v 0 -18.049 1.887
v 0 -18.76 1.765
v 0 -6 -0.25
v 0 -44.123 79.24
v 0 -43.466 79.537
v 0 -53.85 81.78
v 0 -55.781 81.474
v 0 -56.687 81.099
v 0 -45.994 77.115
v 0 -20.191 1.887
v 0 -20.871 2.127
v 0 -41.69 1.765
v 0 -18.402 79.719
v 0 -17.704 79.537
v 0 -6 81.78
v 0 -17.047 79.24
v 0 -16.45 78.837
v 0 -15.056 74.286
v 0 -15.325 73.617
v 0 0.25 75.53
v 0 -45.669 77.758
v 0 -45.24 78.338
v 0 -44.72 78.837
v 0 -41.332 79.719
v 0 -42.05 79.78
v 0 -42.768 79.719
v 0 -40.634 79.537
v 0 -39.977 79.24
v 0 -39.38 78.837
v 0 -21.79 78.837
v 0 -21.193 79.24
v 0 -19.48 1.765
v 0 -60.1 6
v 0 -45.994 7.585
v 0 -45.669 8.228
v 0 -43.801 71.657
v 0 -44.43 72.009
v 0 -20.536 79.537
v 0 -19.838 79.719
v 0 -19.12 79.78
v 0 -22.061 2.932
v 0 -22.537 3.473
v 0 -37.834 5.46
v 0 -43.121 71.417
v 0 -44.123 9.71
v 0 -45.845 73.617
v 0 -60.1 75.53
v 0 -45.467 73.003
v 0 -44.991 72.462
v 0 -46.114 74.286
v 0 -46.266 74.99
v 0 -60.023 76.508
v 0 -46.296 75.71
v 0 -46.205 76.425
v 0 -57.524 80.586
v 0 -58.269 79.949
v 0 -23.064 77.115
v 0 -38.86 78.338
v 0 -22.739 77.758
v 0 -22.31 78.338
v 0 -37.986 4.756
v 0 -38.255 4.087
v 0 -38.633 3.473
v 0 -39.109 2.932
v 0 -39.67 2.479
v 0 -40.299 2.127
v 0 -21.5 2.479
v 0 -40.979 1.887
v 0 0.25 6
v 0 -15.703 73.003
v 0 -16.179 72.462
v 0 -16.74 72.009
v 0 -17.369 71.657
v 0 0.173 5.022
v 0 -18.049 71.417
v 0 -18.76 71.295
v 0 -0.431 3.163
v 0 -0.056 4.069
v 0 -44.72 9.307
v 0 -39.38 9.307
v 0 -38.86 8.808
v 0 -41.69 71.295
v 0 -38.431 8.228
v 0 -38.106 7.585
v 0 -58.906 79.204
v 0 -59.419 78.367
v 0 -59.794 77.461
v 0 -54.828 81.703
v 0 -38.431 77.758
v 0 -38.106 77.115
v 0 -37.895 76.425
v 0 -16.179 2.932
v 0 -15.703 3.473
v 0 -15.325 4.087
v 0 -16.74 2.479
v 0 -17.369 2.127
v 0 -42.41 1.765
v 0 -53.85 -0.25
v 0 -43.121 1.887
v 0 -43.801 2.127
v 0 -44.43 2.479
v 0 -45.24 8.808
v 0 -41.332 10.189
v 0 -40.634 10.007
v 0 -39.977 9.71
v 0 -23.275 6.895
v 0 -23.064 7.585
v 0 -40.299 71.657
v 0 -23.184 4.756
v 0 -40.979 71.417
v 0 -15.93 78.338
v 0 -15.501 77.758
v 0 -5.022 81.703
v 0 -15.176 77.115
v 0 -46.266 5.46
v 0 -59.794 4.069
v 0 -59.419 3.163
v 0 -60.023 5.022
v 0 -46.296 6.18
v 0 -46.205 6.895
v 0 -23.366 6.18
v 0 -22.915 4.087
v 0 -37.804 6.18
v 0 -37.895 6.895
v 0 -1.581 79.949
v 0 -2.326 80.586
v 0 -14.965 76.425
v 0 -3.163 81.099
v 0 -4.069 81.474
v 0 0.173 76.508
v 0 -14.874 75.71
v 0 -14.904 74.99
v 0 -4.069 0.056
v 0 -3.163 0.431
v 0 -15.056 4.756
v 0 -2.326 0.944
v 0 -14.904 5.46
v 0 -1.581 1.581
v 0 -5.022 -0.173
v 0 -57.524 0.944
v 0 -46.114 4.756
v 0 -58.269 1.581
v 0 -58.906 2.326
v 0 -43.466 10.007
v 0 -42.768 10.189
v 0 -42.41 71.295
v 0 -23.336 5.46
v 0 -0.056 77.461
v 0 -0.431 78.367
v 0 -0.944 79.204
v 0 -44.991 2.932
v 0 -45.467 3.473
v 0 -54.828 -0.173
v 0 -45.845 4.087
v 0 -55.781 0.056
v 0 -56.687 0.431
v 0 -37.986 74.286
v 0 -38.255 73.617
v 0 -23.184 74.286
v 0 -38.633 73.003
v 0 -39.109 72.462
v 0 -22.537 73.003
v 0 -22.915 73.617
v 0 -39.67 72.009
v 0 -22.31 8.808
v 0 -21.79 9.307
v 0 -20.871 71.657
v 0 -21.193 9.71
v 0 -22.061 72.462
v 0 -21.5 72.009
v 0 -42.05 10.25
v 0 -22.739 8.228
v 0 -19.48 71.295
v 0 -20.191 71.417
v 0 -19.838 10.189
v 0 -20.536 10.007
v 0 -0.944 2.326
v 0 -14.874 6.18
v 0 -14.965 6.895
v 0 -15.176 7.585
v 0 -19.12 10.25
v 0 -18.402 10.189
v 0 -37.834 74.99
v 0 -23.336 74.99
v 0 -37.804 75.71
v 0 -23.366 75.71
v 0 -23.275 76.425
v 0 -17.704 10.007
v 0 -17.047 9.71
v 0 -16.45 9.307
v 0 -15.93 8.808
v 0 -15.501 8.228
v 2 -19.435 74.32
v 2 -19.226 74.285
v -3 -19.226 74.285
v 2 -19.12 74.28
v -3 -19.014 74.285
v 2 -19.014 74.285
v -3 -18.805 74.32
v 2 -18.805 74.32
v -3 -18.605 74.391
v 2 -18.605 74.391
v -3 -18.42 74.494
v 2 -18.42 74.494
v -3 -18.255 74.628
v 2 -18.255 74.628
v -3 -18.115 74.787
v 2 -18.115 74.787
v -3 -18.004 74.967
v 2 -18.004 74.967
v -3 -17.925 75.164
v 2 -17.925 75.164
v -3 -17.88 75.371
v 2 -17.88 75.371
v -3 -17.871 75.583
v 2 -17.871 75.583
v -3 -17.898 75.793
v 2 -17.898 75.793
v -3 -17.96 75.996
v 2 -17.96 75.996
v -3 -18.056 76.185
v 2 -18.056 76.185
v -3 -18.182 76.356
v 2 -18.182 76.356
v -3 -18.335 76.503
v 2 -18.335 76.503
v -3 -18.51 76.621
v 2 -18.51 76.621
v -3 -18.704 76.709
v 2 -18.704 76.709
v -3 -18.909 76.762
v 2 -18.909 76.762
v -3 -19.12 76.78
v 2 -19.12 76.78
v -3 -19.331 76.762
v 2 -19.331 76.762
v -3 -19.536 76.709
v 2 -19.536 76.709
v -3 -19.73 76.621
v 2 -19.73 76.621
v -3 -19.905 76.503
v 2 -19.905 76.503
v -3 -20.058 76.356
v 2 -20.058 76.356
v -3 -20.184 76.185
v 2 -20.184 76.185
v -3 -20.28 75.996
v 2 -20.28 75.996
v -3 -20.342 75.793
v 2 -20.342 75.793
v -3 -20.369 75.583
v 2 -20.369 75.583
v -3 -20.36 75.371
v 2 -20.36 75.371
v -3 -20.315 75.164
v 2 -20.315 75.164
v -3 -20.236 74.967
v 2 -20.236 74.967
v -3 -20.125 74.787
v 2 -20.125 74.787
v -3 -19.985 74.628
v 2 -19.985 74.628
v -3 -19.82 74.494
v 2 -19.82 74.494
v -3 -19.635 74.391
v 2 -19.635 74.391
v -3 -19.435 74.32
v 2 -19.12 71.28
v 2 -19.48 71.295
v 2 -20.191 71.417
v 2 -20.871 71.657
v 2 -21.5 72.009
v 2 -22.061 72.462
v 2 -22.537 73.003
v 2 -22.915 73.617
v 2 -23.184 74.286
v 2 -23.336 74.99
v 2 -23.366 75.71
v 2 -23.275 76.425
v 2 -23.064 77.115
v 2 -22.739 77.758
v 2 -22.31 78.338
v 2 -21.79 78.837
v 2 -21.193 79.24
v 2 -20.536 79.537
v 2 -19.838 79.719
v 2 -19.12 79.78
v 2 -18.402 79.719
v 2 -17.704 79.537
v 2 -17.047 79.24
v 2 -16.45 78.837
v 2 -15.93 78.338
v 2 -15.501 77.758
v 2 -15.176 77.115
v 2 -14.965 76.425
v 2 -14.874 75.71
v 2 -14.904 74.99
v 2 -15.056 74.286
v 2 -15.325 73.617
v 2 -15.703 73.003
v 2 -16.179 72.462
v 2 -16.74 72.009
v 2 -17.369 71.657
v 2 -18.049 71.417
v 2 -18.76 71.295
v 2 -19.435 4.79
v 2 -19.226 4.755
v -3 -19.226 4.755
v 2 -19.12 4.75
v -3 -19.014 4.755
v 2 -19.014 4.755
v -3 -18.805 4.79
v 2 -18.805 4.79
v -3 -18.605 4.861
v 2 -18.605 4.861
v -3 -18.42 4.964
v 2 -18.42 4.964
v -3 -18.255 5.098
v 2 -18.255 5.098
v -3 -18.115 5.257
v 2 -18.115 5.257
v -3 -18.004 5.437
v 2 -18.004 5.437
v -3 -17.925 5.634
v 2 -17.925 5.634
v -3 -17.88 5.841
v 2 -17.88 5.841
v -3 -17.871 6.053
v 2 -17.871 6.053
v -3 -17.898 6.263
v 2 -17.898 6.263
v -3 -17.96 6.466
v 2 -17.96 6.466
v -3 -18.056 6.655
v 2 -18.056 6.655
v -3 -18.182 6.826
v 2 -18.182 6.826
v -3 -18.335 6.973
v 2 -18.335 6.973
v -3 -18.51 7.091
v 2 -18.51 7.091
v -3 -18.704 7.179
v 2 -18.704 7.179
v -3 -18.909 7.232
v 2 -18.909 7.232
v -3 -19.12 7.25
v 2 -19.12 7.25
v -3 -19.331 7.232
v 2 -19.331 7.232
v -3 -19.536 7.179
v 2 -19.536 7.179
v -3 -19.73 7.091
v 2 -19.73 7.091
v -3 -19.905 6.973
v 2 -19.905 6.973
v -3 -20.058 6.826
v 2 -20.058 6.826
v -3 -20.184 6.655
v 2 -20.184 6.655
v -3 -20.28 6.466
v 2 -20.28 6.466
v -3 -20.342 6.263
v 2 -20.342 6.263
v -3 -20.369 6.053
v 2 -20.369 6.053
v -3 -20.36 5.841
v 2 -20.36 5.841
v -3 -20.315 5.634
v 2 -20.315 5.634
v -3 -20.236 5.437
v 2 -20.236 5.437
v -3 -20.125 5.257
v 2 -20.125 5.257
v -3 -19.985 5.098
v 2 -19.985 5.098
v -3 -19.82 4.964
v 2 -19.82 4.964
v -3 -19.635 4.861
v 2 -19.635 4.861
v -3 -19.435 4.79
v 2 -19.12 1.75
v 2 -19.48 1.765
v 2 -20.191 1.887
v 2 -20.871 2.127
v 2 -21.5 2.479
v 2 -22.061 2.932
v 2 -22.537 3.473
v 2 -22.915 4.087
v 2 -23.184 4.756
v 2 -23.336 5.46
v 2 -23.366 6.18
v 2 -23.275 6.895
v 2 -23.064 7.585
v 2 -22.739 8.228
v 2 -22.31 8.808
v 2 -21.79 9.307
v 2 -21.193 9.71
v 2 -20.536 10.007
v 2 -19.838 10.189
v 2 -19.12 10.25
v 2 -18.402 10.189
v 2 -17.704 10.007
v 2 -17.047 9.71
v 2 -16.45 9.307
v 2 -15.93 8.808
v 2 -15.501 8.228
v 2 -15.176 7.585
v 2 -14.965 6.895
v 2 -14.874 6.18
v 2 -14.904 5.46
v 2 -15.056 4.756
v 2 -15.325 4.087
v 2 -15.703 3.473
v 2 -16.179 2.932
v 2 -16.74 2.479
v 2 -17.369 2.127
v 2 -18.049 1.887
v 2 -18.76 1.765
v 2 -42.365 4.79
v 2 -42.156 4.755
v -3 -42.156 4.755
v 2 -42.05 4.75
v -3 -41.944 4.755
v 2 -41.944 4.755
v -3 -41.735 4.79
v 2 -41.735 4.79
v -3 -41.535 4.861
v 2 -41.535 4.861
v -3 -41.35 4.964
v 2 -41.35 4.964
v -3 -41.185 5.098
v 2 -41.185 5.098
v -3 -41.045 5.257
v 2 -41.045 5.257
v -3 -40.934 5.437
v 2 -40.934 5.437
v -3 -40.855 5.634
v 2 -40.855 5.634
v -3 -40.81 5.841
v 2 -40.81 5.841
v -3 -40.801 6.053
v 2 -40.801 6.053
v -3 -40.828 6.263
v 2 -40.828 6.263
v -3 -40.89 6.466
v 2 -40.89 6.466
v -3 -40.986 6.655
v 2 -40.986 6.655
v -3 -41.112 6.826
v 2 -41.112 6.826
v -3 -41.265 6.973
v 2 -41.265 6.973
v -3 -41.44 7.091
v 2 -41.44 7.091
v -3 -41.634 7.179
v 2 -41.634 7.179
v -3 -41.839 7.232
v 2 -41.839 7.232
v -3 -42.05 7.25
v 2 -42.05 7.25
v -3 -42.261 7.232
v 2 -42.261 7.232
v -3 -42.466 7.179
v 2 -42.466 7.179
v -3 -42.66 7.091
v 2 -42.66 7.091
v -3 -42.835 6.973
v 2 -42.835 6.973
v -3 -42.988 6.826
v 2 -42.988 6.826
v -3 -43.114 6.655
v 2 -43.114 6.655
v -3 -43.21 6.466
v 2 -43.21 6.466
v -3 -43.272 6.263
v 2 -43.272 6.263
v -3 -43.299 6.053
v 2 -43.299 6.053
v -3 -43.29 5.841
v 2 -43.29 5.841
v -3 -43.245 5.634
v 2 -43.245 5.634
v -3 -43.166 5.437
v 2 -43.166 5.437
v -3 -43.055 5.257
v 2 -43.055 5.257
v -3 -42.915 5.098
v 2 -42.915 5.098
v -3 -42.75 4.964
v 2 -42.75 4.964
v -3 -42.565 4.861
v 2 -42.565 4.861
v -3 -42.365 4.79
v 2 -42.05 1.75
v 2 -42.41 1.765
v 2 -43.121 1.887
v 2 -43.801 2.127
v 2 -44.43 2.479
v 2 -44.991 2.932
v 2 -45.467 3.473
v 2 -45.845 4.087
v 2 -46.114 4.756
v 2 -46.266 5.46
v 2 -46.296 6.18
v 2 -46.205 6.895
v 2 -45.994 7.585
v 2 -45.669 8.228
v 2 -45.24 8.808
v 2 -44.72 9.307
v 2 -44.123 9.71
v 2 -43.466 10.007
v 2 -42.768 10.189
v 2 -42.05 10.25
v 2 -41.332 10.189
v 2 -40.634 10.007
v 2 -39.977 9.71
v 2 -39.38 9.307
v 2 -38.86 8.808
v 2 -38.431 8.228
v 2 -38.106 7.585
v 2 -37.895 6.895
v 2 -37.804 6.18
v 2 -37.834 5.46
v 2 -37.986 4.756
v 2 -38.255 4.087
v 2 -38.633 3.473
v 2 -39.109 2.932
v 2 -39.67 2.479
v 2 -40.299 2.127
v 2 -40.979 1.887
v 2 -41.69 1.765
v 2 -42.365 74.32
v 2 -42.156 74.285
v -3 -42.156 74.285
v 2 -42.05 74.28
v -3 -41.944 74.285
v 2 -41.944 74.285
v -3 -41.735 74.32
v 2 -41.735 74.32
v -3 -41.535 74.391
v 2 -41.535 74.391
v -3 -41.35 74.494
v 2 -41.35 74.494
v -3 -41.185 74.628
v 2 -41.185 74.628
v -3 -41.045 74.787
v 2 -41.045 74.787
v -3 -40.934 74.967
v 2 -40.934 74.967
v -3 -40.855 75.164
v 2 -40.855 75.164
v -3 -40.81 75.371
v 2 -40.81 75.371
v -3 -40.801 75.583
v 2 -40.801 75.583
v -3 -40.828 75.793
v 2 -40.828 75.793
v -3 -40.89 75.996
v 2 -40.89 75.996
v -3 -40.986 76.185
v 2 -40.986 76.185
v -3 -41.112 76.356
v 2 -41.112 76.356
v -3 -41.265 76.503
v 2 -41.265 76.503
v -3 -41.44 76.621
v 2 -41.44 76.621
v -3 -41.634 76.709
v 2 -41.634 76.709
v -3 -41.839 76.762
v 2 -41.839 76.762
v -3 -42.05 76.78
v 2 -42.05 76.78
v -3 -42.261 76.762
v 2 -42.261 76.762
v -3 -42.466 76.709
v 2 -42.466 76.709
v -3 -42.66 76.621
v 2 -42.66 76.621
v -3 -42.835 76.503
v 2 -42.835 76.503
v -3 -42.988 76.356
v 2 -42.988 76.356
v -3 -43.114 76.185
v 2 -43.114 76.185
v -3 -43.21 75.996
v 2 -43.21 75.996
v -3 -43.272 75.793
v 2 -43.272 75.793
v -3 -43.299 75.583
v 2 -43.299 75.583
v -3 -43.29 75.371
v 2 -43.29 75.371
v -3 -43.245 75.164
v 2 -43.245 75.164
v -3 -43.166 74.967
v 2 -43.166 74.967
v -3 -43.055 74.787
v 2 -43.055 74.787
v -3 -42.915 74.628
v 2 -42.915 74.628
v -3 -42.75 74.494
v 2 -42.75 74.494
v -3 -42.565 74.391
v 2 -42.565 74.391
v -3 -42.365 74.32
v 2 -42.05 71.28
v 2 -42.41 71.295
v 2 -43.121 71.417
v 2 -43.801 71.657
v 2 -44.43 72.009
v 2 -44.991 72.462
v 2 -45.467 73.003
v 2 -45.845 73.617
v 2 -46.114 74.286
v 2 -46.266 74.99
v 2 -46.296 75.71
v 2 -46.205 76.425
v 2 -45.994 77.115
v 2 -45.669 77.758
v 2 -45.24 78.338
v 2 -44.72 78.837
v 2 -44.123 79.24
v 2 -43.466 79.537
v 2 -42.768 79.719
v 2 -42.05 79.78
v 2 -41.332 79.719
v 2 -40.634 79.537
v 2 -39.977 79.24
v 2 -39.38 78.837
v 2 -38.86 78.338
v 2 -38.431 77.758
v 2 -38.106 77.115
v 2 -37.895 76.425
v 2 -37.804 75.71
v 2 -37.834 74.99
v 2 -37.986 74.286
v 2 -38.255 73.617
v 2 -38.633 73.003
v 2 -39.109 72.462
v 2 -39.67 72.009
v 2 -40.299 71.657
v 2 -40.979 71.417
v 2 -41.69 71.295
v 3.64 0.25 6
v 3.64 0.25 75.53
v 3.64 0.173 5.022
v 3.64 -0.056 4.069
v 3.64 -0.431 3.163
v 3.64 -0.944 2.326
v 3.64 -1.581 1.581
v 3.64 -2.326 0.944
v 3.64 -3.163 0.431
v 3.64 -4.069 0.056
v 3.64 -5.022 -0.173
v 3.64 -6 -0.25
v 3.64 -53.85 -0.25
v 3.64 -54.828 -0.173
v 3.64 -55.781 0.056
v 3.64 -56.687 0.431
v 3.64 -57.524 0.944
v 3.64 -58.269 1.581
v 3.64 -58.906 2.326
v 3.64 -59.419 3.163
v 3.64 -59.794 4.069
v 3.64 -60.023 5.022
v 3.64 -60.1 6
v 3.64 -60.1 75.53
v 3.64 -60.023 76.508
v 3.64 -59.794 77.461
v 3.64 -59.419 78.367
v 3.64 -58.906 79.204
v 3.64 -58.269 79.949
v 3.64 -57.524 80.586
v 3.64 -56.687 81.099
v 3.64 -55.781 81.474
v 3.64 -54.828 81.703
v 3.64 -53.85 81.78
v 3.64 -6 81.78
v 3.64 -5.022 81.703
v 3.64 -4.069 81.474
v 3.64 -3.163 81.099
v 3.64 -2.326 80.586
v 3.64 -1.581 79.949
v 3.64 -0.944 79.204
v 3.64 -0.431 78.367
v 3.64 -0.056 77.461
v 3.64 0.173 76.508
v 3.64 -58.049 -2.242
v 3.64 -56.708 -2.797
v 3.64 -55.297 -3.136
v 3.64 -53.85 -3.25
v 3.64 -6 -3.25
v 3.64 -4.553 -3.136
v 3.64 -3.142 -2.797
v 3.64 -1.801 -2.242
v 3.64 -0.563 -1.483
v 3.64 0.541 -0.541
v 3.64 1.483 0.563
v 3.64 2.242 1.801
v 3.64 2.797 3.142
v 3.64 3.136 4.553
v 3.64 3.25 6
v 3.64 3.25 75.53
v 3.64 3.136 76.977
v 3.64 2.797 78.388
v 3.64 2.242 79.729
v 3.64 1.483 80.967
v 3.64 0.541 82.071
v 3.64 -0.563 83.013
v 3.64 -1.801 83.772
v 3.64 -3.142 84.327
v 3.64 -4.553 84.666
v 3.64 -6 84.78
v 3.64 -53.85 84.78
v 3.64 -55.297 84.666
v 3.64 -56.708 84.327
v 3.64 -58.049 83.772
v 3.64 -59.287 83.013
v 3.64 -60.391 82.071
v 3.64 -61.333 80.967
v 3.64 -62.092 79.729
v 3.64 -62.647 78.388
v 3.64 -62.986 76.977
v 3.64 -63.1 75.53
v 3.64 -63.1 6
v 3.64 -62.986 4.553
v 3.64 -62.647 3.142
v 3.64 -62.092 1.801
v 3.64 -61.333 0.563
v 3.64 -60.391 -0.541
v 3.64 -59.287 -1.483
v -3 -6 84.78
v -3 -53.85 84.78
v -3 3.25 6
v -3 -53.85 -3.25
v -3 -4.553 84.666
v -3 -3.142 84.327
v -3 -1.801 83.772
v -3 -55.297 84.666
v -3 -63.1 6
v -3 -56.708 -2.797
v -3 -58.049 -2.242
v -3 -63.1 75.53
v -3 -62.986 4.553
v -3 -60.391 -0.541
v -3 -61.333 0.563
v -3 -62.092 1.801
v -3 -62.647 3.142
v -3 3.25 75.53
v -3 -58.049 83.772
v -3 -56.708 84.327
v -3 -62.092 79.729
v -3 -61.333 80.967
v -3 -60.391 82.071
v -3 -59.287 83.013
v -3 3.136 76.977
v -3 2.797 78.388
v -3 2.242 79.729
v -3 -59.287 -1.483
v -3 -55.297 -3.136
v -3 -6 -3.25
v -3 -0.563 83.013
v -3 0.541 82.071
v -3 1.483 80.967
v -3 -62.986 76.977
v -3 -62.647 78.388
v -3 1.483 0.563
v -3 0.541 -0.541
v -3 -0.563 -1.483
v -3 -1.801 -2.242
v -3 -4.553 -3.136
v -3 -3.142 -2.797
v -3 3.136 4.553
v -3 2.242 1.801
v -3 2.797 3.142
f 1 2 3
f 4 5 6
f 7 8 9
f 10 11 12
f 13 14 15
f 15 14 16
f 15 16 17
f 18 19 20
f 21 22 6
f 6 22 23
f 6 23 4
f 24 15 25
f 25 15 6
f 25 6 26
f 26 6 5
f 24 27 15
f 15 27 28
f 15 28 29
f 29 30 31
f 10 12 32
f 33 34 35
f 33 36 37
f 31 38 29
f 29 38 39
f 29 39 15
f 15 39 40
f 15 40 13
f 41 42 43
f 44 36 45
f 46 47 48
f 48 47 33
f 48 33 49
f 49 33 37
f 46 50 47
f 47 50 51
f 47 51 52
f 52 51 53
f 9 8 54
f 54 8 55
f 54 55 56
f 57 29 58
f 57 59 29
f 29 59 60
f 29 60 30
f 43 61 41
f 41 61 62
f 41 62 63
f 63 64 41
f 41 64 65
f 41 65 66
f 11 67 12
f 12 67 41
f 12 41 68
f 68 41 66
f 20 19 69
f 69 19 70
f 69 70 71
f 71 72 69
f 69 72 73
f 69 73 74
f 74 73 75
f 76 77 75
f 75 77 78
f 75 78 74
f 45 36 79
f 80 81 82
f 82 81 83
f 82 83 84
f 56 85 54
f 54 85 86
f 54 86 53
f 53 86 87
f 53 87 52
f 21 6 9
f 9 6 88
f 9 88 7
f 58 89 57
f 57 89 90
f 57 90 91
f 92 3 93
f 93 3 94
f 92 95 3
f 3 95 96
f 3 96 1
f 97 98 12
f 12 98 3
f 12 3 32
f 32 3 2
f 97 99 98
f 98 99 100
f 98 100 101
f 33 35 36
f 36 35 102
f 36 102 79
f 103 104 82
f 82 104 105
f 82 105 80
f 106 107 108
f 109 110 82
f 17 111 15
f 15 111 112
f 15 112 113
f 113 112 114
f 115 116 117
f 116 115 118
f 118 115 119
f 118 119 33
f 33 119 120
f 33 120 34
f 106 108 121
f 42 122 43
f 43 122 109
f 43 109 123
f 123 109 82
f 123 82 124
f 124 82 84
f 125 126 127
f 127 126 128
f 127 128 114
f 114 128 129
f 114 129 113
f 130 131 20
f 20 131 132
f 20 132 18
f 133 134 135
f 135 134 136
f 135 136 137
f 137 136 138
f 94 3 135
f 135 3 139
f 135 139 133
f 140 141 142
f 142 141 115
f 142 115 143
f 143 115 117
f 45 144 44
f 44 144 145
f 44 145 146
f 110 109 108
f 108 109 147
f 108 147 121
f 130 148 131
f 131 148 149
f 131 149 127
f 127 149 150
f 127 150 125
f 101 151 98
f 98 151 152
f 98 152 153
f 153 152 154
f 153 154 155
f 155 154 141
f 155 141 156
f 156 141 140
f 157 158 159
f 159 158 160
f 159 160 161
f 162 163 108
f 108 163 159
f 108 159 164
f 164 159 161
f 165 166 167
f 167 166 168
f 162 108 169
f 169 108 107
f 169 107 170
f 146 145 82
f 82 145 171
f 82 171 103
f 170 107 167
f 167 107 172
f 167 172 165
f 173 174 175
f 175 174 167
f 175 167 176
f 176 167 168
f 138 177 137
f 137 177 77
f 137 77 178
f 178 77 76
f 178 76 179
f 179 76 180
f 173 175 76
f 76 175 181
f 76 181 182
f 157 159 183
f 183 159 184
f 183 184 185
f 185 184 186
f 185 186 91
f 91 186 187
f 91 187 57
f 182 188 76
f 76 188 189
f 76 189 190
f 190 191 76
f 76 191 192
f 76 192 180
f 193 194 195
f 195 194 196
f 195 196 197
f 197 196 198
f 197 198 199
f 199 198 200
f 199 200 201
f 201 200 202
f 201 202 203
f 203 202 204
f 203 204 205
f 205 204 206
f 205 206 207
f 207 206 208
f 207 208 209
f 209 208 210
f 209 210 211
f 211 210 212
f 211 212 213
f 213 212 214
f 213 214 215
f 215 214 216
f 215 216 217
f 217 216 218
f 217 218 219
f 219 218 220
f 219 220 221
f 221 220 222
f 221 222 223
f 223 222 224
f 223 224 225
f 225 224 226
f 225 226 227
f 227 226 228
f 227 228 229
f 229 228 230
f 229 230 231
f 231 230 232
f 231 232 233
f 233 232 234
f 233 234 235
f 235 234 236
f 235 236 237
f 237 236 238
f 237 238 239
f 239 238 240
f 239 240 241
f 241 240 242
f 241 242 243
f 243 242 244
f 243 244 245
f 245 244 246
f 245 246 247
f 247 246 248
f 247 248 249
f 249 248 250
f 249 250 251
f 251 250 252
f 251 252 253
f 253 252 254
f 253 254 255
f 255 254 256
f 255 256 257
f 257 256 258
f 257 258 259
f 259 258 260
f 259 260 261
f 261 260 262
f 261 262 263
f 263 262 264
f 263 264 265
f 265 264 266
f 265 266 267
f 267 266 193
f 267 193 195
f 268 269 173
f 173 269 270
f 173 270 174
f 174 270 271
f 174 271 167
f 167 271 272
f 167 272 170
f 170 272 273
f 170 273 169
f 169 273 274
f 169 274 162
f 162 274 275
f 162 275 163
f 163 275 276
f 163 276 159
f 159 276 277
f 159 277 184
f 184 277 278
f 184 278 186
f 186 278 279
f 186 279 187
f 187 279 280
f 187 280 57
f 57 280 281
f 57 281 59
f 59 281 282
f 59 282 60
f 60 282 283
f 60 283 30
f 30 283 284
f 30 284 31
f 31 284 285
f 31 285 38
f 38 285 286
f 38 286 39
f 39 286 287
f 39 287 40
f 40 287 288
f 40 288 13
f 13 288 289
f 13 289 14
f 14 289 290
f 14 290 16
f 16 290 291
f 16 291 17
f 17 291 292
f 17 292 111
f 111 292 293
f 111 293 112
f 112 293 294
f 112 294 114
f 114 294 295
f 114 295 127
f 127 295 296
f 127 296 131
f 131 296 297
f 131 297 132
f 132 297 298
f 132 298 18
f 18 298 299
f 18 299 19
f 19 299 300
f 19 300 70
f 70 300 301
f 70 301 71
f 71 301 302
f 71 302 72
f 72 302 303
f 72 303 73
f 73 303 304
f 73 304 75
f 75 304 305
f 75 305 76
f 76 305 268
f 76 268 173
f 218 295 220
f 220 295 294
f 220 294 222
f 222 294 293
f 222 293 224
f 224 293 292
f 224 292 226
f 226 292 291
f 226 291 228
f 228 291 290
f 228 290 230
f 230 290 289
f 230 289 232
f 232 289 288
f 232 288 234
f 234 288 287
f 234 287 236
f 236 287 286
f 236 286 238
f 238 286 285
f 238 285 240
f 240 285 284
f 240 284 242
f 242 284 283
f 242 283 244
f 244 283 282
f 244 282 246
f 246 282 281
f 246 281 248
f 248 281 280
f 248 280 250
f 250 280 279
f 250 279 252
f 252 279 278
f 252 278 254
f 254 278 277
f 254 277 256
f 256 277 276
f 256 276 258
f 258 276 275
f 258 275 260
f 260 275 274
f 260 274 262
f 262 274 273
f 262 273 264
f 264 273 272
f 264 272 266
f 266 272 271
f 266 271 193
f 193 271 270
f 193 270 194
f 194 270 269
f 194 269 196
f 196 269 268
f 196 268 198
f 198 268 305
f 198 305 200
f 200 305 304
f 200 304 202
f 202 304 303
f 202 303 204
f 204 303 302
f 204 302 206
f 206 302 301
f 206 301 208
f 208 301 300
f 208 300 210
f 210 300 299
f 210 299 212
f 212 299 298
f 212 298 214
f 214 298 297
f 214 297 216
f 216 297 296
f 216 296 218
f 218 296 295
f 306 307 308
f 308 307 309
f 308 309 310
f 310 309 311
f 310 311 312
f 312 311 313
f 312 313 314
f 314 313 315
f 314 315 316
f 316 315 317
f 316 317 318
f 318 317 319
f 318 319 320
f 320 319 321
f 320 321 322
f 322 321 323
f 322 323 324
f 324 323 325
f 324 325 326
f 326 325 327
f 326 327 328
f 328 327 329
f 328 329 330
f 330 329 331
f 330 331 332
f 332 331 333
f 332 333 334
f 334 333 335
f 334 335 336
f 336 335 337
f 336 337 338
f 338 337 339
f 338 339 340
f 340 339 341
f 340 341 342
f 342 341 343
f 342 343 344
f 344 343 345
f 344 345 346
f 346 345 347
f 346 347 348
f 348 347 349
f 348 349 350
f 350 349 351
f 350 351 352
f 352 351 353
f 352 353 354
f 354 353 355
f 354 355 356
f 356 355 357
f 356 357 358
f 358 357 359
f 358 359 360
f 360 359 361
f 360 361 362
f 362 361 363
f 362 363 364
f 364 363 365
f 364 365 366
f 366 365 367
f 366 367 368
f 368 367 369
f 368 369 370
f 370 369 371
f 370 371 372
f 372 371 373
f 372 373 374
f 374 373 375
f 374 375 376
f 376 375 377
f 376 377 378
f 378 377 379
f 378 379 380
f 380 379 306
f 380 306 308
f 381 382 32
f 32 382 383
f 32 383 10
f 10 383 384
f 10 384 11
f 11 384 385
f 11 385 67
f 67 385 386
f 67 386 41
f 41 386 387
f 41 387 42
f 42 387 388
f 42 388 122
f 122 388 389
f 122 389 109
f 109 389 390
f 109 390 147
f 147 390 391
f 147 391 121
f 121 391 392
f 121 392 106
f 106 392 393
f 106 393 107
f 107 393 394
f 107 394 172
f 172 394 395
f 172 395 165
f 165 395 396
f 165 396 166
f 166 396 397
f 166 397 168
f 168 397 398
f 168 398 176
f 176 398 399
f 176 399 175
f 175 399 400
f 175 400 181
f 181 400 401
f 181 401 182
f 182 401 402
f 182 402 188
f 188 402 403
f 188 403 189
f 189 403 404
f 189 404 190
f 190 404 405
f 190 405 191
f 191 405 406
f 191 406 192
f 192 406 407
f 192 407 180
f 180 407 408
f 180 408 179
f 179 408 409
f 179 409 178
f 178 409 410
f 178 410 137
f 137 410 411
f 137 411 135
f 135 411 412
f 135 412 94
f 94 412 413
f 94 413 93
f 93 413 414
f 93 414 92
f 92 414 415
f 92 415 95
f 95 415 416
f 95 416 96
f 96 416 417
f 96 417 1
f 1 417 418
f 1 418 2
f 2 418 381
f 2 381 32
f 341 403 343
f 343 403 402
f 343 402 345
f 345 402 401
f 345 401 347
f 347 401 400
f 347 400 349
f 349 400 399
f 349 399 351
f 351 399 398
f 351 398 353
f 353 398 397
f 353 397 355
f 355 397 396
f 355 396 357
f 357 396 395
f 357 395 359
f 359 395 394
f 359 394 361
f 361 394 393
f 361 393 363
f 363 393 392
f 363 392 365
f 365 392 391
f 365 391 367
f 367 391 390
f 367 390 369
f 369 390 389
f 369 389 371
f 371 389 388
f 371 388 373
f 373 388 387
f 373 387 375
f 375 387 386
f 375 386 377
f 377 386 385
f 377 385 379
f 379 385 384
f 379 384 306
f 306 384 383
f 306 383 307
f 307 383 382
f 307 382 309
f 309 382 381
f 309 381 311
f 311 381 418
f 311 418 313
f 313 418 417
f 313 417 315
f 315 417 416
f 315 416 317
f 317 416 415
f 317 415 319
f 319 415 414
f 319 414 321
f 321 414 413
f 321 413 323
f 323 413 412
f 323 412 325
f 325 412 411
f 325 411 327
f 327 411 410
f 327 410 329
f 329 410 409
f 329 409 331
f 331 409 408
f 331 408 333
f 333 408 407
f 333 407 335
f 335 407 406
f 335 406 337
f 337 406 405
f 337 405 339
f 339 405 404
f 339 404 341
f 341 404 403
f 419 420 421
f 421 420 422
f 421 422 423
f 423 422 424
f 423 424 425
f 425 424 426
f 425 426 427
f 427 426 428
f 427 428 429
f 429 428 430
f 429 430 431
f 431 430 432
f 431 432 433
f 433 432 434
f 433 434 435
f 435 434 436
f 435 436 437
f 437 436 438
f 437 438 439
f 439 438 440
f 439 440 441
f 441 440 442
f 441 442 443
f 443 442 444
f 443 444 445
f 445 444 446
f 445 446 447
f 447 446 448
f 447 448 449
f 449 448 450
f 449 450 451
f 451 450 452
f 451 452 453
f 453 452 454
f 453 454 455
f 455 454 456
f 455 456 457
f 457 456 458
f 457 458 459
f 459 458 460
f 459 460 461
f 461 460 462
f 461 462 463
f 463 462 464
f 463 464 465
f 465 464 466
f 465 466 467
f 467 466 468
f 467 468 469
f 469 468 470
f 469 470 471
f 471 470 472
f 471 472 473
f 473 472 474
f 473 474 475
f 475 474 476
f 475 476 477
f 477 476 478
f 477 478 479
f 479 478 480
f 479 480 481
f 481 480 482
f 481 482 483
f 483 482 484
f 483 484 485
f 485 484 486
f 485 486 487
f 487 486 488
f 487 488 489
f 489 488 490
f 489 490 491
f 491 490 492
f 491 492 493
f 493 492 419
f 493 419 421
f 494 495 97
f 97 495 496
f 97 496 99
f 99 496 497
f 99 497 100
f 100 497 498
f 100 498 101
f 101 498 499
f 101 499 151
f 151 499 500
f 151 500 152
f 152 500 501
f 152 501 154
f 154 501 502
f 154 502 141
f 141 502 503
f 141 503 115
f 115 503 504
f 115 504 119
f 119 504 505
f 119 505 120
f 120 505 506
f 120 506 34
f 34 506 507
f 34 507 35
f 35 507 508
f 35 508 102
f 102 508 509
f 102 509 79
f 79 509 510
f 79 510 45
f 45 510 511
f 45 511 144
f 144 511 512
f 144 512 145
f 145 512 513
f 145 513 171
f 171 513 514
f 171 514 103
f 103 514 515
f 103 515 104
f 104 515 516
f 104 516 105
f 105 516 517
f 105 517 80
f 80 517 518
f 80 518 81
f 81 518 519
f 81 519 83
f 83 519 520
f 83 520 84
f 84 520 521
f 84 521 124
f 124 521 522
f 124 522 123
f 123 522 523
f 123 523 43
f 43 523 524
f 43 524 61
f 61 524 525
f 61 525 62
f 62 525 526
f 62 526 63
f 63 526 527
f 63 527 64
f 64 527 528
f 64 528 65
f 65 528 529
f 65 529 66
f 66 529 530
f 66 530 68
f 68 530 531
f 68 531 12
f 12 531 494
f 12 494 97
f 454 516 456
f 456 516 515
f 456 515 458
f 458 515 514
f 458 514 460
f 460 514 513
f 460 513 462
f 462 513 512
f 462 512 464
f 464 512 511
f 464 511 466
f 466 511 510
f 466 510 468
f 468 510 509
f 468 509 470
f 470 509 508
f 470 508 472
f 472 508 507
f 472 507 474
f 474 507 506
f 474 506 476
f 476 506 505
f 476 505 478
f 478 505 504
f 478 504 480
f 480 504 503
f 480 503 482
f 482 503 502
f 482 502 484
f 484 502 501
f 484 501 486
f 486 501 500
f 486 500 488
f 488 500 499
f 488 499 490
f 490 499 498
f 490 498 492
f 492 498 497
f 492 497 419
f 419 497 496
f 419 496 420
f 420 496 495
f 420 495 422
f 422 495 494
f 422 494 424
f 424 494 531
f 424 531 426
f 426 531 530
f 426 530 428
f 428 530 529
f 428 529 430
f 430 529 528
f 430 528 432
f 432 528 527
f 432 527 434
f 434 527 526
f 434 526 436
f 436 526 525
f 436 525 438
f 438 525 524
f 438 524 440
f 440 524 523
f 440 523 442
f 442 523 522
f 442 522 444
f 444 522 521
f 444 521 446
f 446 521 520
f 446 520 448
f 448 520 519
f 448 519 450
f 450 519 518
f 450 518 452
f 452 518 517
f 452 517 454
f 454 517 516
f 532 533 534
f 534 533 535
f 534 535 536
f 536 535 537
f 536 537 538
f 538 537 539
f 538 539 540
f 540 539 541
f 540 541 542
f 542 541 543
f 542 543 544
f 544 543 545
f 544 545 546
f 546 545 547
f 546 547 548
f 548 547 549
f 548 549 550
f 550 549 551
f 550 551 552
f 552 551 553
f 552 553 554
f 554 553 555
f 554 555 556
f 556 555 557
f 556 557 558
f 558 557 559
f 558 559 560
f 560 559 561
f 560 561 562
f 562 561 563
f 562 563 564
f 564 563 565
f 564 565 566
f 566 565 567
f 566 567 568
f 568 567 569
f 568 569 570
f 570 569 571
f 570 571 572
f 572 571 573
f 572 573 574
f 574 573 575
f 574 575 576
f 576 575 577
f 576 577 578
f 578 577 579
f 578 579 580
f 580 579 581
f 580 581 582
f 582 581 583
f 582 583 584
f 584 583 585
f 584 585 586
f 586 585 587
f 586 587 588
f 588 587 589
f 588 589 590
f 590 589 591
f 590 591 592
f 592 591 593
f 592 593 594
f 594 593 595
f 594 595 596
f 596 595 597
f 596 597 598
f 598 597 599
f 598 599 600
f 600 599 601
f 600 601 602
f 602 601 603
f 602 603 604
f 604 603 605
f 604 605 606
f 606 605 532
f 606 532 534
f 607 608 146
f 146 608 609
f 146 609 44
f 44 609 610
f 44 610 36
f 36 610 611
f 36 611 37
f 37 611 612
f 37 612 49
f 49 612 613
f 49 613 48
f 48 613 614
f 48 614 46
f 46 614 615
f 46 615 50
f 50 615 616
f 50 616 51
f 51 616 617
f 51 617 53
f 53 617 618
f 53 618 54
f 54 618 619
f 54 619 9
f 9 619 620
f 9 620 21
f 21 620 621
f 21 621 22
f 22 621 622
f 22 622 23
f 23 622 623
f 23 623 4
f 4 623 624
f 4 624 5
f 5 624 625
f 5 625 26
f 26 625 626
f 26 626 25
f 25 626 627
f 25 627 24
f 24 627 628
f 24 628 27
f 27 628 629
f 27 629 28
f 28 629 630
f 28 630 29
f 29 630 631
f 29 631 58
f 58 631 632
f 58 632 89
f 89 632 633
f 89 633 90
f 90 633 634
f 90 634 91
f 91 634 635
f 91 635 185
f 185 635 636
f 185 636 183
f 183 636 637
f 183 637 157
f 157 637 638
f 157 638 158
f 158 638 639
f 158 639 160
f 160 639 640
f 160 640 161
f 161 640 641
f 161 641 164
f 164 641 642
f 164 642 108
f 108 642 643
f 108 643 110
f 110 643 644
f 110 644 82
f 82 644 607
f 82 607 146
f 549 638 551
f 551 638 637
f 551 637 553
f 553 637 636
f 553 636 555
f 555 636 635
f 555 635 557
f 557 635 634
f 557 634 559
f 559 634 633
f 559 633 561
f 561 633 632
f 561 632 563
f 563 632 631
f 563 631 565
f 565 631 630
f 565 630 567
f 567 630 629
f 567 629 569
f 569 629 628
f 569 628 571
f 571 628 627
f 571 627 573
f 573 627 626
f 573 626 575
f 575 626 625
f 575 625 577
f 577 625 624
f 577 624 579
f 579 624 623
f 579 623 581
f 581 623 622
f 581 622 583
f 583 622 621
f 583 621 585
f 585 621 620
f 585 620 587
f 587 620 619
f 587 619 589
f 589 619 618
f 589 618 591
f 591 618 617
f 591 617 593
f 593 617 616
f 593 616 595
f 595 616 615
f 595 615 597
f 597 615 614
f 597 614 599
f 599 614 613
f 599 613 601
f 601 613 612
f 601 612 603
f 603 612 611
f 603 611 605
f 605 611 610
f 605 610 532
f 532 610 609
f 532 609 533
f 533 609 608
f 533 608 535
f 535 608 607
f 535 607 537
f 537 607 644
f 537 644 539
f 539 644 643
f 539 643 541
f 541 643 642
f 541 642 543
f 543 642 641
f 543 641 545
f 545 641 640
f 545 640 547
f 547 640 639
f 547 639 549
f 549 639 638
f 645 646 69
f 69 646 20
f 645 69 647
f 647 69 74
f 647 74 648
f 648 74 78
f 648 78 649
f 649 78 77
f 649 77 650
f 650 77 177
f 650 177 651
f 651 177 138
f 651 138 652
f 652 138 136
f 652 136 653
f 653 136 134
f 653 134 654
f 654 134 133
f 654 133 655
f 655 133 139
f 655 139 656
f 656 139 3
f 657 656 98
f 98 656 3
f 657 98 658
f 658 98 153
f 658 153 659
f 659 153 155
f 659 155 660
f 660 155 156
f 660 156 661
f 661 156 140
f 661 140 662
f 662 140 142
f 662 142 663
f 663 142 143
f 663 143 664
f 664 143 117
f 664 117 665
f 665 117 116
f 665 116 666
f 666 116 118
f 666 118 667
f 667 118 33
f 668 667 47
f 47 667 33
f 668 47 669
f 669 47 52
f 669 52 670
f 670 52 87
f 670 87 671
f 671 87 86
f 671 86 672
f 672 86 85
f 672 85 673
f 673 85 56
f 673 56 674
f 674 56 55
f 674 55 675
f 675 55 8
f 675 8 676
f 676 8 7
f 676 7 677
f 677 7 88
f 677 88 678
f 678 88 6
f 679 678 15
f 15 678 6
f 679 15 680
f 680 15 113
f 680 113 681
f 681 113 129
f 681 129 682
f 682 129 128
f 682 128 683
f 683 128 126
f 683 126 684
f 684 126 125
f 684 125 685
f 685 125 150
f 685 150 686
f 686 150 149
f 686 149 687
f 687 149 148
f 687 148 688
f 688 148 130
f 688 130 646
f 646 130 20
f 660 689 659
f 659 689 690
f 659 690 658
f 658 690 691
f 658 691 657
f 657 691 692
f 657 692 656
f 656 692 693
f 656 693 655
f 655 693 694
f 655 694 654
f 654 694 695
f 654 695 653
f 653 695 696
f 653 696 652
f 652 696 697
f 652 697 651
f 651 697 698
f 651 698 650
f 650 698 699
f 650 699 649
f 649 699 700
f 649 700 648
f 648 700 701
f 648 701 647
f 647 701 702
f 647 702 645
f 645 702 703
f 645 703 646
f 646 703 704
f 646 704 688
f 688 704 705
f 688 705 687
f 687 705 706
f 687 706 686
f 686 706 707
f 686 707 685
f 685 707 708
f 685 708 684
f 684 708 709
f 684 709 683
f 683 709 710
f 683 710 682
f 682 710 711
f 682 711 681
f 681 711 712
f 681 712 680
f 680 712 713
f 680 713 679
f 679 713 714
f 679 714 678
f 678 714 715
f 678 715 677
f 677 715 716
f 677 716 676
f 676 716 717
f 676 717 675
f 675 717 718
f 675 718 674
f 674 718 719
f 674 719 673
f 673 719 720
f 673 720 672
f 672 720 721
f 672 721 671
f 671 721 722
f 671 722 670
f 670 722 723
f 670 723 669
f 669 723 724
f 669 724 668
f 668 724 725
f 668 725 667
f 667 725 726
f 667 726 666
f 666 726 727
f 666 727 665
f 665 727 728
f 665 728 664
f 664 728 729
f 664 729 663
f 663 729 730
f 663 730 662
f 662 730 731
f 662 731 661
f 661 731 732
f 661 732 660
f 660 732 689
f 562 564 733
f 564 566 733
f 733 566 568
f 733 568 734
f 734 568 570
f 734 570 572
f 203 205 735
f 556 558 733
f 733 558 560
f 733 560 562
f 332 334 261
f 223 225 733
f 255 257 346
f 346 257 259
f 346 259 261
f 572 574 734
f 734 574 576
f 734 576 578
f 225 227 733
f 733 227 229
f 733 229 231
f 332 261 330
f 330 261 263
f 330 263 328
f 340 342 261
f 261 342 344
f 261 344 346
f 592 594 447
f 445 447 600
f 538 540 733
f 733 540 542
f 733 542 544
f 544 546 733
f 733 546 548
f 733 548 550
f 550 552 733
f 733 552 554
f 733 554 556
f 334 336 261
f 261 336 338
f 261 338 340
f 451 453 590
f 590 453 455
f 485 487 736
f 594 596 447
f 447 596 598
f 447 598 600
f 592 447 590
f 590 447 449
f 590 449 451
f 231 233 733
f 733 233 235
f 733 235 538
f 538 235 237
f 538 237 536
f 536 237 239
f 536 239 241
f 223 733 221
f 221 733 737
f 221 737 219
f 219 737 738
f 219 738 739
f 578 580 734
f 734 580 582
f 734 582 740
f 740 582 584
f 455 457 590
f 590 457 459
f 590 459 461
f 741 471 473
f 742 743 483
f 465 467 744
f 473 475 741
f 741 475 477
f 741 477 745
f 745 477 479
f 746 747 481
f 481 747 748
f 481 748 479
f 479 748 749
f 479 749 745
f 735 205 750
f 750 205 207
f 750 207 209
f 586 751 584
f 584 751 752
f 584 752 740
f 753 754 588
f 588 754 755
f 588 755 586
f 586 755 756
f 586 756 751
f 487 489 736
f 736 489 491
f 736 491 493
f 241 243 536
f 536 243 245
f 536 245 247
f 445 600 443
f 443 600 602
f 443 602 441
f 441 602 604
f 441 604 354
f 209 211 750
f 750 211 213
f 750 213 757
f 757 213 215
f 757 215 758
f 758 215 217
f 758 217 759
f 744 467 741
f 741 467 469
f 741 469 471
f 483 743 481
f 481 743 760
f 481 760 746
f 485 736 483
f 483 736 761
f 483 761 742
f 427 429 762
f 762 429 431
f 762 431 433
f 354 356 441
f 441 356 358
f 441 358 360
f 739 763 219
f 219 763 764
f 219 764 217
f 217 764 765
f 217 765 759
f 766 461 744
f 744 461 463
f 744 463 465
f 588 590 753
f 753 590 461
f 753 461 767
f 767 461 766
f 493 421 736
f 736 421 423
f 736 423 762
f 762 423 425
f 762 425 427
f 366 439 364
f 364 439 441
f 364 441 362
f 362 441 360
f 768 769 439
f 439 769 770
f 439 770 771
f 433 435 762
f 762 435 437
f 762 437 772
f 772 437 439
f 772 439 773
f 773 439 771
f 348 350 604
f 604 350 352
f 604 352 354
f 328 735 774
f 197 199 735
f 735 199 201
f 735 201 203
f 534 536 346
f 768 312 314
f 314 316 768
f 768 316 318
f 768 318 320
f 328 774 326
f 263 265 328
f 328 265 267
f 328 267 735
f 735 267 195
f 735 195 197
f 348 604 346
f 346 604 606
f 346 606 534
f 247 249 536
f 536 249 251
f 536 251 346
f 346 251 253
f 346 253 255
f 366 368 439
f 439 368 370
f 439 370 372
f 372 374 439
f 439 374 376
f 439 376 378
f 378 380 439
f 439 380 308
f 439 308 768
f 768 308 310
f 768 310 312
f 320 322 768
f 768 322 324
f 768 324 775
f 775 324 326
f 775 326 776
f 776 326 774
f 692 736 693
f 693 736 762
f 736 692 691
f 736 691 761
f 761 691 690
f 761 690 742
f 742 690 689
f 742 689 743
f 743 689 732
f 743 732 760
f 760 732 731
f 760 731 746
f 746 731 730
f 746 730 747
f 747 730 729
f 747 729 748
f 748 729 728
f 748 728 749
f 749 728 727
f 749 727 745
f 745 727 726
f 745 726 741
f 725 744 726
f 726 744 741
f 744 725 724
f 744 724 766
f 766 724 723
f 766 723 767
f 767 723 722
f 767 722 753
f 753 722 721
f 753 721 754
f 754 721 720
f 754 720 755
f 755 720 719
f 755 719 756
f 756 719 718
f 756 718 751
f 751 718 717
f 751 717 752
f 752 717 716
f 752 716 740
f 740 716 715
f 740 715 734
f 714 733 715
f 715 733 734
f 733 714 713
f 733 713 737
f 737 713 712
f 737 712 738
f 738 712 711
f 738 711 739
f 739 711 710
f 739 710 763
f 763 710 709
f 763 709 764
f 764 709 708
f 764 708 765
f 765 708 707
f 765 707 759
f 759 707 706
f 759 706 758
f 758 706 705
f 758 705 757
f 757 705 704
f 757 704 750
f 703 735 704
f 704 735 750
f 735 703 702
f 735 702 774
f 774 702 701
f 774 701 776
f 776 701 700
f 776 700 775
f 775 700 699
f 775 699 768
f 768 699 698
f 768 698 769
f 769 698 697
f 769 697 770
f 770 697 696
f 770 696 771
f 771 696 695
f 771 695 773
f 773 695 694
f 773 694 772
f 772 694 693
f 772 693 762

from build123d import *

# Parameters (mm, degrees)
BOSS_EXTRUDE1_DEPTH = 3
SKETCH1_3_R         = 4.25
SKETCH1_3_R_2       = 1.25
BOSS_EXTRUDE2_DEPTH = 2
BOSS_EXTRUDE3_START = 3.64
BOSS_EXTRUDE3_DEPTH = 3.64
CUT_EXTRUDE1_REACH  = 107.747
SKETCH1_5_R         = 1.25


with BuildPart() as part:
    # Sketch1 → Boss-Extrude1 (new body)
    with BuildSketch(Plane(origin=(0, 0, 0), x_dir=(0, 0, -1), z_dir=(1, 0, 0))):
        with BuildLine():
            Line((-6, 3.25), (-75.53, 3.25))
            ThreePointArc((-75.53, 3.25), (-82.070737726, 0.540737726), (-84.78, -6))
            Line((-84.78, -6), (-84.78, -53.85))
            ThreePointArc((-84.78, -53.85), (-82.070737726, -60.390737726), (-75.53, -63.1))
            Line((-75.53, -63.1), (-6, -63.1))
            ThreePointArc((-6, -63.1), (0.540737726, -60.390737726), (3.25, -53.85))
            Line((3.25, -53.85), (3.25, -6))
            ThreePointArc((3.25, -6), (0.540737726, 0.540737726), (-6, 3.25))
        make_face()
    extrude(amount=-BOSS_EXTRUDE1_DEPTH)

    # Sketch1<3> → Boss-Extrude2 (add)
    # profile 1 of 4: a face of its own
    with BuildSketch(Plane(origin=(0, 0, 0), x_dir=(0, 0, -1), z_dir=(1, 0, 0))):
        with Locations((-75.53, -19.12)):
            Circle(SKETCH1_3_R)
        with Locations((-75.53, -19.12)):
            Circle(SKETCH1_3_R_2, mode=Mode.SUBTRACT)
    # profile 2 of 4: a face of its own
    with BuildSketch(Plane(origin=(0, 0, 0), x_dir=(0, 0, -1), z_dir=(1, 0, 0))):
        with Locations((-6, -19.12)):
            Circle(SKETCH1_3_R)
        with Locations((-6, -19.12)):
            Circle(SKETCH1_3_R_2, mode=Mode.SUBTRACT)
    # profile 3 of 4: a face of its own
    with BuildSketch(Plane(origin=(0, 0, 0), x_dir=(0, 0, -1), z_dir=(1, 0, 0))):
        with Locations((-6, -42.05)):
            Circle(SKETCH1_3_R)
        with Locations((-6, -42.05)):
            Circle(SKETCH1_3_R_2, mode=Mode.SUBTRACT)
    # profile 4 of 4: a face of its own
    with BuildSketch(Plane(origin=(0, 0, 0), x_dir=(0, 0, -1), z_dir=(1, 0, 0))):
        with Locations((-75.53, -42.05)):
            Circle(SKETCH1_3_R)
        with Locations((-75.53, -42.05)):
            Circle(SKETCH1_3_R_2, mode=Mode.SUBTRACT)
    extrude(amount=BOSS_EXTRUDE2_DEPTH)

    # Sketch1<4> → Boss-Extrude3 (add)
    with BuildSketch(Plane(origin=(0, 0, 0), x_dir=(0, 0, -1), z_dir=(1, 0, 0)).offset(BOSS_EXTRUDE3_START)):
        with BuildLine():
            ThreePointArc((3.25, -6), (0.540737726, 0.540737726), (-6, 3.25))
            Line((-6, 3.25), (-75.53, 3.25))
            ThreePointArc((-75.53, 3.25), (-82.070737726, 0.540737726), (-84.78, -6))
            Line((-84.78, -6), (-84.78, -53.85))
            ThreePointArc((-84.78, -53.85), (-82.070737726, -60.390737726), (-75.53, -63.1))
            Line((-75.53, -63.1), (-6, -63.1))
            ThreePointArc((-6, -63.1), (0.540737726, -60.390737726), (3.25, -53.85))
            Line((3.25, -53.85), (3.25, -6))
        make_face()
        with BuildLine():
            Line((-75.53, 0.25), (-6, 0.25))
            ThreePointArc((-6, 0.25), (-1.580582618, -1.580582618), (0.25, -6))
            Line((0.25, -6), (0.25, -53.85))
            ThreePointArc((0.25, -53.85), (-1.580582618, -58.269417382), (-6, -60.1))
            Line((-6, -60.1), (-75.53, -60.1))
            ThreePointArc((-75.53, -60.1), (-79.949417382, -58.269417382), (-81.78, -53.85))
            Line((-81.78, -53.85), (-81.78, -6))
            ThreePointArc((-81.78, -6), (-79.949417382, -1.580582618), (-75.53, 0.25))
        make_face(mode=Mode.SUBTRACT)
    extrude(amount=-BOSS_EXTRUDE3_DEPTH)

    # Sketch1<5> → Cut-Extrude1 (cut, up to next)
    with BuildSketch(Plane(origin=(0, 0, 0), x_dir=(0, 0, -1), z_dir=(1, 0, 0)), mode=Mode.PRIVATE) as cut_extrude1_sk1:
        with Locations((-6, -19.12)):
            Circle(SKETCH1_5_R)
    cut_extrude1_tool1 = extrude(cut_extrude1_sk1.sketch, amount=-CUT_EXTRUDE1_REACH, mode=Mode.PRIVATE) & part.part
    # Sketch1<5> → Cut-Extrude1 (cut, up to next)
    with BuildSketch(Plane(origin=(0, 0, 0), x_dir=(0, 0, -1), z_dir=(1, 0, 0)), mode=Mode.PRIVATE) as cut_extrude1_sk2:
        with Locations((-6, -42.05)):
            Circle(SKETCH1_5_R)
    cut_extrude1_tool2 = extrude(cut_extrude1_sk2.sketch, amount=-CUT_EXTRUDE1_REACH, mode=Mode.PRIVATE) & part.part
    # Sketch1<5> → Cut-Extrude1 (cut, up to next)
    with BuildSketch(Plane(origin=(0, 0, 0), x_dir=(0, 0, -1), z_dir=(1, 0, 0)), mode=Mode.PRIVATE) as cut_extrude1_sk3:
        with Locations((-75.53, -19.12)):
            Circle(SKETCH1_5_R)
    cut_extrude1_tool3 = extrude(cut_extrude1_sk3.sketch, amount=-CUT_EXTRUDE1_REACH, mode=Mode.PRIVATE) & part.part
    # Sketch1<5> → Cut-Extrude1 (cut, up to next)
    with BuildSketch(Plane(origin=(0, 0, 0), x_dir=(0, 0, -1), z_dir=(1, 0, 0)), mode=Mode.PRIVATE) as cut_extrude1_sk4:
        with Locations((-75.53, -42.05)):
            Circle(SKETCH1_5_R)
    cut_extrude1_tool4 = extrude(cut_extrude1_sk4.sketch, amount=-CUT_EXTRUDE1_REACH, mode=Mode.PRIVATE) & part.part
    add(cut_extrude1_tool1.solids().sort_by_distance((0, -19.12, 6))[0], mode=Mode.SUBTRACT)
    add(cut_extrude1_tool2.solids().sort_by_distance((0, -42.05, 6))[0], mode=Mode.SUBTRACT)
    add(cut_extrude1_tool3.solids().sort_by_distance((0, -19.12, 75.53))[0], mode=Mode.SUBTRACT)
    add(cut_extrude1_tool4.solids().sort_by_distance((0, -42.05, 75.53))[0], mode=Mode.SUBTRACT)


solid = part.part
